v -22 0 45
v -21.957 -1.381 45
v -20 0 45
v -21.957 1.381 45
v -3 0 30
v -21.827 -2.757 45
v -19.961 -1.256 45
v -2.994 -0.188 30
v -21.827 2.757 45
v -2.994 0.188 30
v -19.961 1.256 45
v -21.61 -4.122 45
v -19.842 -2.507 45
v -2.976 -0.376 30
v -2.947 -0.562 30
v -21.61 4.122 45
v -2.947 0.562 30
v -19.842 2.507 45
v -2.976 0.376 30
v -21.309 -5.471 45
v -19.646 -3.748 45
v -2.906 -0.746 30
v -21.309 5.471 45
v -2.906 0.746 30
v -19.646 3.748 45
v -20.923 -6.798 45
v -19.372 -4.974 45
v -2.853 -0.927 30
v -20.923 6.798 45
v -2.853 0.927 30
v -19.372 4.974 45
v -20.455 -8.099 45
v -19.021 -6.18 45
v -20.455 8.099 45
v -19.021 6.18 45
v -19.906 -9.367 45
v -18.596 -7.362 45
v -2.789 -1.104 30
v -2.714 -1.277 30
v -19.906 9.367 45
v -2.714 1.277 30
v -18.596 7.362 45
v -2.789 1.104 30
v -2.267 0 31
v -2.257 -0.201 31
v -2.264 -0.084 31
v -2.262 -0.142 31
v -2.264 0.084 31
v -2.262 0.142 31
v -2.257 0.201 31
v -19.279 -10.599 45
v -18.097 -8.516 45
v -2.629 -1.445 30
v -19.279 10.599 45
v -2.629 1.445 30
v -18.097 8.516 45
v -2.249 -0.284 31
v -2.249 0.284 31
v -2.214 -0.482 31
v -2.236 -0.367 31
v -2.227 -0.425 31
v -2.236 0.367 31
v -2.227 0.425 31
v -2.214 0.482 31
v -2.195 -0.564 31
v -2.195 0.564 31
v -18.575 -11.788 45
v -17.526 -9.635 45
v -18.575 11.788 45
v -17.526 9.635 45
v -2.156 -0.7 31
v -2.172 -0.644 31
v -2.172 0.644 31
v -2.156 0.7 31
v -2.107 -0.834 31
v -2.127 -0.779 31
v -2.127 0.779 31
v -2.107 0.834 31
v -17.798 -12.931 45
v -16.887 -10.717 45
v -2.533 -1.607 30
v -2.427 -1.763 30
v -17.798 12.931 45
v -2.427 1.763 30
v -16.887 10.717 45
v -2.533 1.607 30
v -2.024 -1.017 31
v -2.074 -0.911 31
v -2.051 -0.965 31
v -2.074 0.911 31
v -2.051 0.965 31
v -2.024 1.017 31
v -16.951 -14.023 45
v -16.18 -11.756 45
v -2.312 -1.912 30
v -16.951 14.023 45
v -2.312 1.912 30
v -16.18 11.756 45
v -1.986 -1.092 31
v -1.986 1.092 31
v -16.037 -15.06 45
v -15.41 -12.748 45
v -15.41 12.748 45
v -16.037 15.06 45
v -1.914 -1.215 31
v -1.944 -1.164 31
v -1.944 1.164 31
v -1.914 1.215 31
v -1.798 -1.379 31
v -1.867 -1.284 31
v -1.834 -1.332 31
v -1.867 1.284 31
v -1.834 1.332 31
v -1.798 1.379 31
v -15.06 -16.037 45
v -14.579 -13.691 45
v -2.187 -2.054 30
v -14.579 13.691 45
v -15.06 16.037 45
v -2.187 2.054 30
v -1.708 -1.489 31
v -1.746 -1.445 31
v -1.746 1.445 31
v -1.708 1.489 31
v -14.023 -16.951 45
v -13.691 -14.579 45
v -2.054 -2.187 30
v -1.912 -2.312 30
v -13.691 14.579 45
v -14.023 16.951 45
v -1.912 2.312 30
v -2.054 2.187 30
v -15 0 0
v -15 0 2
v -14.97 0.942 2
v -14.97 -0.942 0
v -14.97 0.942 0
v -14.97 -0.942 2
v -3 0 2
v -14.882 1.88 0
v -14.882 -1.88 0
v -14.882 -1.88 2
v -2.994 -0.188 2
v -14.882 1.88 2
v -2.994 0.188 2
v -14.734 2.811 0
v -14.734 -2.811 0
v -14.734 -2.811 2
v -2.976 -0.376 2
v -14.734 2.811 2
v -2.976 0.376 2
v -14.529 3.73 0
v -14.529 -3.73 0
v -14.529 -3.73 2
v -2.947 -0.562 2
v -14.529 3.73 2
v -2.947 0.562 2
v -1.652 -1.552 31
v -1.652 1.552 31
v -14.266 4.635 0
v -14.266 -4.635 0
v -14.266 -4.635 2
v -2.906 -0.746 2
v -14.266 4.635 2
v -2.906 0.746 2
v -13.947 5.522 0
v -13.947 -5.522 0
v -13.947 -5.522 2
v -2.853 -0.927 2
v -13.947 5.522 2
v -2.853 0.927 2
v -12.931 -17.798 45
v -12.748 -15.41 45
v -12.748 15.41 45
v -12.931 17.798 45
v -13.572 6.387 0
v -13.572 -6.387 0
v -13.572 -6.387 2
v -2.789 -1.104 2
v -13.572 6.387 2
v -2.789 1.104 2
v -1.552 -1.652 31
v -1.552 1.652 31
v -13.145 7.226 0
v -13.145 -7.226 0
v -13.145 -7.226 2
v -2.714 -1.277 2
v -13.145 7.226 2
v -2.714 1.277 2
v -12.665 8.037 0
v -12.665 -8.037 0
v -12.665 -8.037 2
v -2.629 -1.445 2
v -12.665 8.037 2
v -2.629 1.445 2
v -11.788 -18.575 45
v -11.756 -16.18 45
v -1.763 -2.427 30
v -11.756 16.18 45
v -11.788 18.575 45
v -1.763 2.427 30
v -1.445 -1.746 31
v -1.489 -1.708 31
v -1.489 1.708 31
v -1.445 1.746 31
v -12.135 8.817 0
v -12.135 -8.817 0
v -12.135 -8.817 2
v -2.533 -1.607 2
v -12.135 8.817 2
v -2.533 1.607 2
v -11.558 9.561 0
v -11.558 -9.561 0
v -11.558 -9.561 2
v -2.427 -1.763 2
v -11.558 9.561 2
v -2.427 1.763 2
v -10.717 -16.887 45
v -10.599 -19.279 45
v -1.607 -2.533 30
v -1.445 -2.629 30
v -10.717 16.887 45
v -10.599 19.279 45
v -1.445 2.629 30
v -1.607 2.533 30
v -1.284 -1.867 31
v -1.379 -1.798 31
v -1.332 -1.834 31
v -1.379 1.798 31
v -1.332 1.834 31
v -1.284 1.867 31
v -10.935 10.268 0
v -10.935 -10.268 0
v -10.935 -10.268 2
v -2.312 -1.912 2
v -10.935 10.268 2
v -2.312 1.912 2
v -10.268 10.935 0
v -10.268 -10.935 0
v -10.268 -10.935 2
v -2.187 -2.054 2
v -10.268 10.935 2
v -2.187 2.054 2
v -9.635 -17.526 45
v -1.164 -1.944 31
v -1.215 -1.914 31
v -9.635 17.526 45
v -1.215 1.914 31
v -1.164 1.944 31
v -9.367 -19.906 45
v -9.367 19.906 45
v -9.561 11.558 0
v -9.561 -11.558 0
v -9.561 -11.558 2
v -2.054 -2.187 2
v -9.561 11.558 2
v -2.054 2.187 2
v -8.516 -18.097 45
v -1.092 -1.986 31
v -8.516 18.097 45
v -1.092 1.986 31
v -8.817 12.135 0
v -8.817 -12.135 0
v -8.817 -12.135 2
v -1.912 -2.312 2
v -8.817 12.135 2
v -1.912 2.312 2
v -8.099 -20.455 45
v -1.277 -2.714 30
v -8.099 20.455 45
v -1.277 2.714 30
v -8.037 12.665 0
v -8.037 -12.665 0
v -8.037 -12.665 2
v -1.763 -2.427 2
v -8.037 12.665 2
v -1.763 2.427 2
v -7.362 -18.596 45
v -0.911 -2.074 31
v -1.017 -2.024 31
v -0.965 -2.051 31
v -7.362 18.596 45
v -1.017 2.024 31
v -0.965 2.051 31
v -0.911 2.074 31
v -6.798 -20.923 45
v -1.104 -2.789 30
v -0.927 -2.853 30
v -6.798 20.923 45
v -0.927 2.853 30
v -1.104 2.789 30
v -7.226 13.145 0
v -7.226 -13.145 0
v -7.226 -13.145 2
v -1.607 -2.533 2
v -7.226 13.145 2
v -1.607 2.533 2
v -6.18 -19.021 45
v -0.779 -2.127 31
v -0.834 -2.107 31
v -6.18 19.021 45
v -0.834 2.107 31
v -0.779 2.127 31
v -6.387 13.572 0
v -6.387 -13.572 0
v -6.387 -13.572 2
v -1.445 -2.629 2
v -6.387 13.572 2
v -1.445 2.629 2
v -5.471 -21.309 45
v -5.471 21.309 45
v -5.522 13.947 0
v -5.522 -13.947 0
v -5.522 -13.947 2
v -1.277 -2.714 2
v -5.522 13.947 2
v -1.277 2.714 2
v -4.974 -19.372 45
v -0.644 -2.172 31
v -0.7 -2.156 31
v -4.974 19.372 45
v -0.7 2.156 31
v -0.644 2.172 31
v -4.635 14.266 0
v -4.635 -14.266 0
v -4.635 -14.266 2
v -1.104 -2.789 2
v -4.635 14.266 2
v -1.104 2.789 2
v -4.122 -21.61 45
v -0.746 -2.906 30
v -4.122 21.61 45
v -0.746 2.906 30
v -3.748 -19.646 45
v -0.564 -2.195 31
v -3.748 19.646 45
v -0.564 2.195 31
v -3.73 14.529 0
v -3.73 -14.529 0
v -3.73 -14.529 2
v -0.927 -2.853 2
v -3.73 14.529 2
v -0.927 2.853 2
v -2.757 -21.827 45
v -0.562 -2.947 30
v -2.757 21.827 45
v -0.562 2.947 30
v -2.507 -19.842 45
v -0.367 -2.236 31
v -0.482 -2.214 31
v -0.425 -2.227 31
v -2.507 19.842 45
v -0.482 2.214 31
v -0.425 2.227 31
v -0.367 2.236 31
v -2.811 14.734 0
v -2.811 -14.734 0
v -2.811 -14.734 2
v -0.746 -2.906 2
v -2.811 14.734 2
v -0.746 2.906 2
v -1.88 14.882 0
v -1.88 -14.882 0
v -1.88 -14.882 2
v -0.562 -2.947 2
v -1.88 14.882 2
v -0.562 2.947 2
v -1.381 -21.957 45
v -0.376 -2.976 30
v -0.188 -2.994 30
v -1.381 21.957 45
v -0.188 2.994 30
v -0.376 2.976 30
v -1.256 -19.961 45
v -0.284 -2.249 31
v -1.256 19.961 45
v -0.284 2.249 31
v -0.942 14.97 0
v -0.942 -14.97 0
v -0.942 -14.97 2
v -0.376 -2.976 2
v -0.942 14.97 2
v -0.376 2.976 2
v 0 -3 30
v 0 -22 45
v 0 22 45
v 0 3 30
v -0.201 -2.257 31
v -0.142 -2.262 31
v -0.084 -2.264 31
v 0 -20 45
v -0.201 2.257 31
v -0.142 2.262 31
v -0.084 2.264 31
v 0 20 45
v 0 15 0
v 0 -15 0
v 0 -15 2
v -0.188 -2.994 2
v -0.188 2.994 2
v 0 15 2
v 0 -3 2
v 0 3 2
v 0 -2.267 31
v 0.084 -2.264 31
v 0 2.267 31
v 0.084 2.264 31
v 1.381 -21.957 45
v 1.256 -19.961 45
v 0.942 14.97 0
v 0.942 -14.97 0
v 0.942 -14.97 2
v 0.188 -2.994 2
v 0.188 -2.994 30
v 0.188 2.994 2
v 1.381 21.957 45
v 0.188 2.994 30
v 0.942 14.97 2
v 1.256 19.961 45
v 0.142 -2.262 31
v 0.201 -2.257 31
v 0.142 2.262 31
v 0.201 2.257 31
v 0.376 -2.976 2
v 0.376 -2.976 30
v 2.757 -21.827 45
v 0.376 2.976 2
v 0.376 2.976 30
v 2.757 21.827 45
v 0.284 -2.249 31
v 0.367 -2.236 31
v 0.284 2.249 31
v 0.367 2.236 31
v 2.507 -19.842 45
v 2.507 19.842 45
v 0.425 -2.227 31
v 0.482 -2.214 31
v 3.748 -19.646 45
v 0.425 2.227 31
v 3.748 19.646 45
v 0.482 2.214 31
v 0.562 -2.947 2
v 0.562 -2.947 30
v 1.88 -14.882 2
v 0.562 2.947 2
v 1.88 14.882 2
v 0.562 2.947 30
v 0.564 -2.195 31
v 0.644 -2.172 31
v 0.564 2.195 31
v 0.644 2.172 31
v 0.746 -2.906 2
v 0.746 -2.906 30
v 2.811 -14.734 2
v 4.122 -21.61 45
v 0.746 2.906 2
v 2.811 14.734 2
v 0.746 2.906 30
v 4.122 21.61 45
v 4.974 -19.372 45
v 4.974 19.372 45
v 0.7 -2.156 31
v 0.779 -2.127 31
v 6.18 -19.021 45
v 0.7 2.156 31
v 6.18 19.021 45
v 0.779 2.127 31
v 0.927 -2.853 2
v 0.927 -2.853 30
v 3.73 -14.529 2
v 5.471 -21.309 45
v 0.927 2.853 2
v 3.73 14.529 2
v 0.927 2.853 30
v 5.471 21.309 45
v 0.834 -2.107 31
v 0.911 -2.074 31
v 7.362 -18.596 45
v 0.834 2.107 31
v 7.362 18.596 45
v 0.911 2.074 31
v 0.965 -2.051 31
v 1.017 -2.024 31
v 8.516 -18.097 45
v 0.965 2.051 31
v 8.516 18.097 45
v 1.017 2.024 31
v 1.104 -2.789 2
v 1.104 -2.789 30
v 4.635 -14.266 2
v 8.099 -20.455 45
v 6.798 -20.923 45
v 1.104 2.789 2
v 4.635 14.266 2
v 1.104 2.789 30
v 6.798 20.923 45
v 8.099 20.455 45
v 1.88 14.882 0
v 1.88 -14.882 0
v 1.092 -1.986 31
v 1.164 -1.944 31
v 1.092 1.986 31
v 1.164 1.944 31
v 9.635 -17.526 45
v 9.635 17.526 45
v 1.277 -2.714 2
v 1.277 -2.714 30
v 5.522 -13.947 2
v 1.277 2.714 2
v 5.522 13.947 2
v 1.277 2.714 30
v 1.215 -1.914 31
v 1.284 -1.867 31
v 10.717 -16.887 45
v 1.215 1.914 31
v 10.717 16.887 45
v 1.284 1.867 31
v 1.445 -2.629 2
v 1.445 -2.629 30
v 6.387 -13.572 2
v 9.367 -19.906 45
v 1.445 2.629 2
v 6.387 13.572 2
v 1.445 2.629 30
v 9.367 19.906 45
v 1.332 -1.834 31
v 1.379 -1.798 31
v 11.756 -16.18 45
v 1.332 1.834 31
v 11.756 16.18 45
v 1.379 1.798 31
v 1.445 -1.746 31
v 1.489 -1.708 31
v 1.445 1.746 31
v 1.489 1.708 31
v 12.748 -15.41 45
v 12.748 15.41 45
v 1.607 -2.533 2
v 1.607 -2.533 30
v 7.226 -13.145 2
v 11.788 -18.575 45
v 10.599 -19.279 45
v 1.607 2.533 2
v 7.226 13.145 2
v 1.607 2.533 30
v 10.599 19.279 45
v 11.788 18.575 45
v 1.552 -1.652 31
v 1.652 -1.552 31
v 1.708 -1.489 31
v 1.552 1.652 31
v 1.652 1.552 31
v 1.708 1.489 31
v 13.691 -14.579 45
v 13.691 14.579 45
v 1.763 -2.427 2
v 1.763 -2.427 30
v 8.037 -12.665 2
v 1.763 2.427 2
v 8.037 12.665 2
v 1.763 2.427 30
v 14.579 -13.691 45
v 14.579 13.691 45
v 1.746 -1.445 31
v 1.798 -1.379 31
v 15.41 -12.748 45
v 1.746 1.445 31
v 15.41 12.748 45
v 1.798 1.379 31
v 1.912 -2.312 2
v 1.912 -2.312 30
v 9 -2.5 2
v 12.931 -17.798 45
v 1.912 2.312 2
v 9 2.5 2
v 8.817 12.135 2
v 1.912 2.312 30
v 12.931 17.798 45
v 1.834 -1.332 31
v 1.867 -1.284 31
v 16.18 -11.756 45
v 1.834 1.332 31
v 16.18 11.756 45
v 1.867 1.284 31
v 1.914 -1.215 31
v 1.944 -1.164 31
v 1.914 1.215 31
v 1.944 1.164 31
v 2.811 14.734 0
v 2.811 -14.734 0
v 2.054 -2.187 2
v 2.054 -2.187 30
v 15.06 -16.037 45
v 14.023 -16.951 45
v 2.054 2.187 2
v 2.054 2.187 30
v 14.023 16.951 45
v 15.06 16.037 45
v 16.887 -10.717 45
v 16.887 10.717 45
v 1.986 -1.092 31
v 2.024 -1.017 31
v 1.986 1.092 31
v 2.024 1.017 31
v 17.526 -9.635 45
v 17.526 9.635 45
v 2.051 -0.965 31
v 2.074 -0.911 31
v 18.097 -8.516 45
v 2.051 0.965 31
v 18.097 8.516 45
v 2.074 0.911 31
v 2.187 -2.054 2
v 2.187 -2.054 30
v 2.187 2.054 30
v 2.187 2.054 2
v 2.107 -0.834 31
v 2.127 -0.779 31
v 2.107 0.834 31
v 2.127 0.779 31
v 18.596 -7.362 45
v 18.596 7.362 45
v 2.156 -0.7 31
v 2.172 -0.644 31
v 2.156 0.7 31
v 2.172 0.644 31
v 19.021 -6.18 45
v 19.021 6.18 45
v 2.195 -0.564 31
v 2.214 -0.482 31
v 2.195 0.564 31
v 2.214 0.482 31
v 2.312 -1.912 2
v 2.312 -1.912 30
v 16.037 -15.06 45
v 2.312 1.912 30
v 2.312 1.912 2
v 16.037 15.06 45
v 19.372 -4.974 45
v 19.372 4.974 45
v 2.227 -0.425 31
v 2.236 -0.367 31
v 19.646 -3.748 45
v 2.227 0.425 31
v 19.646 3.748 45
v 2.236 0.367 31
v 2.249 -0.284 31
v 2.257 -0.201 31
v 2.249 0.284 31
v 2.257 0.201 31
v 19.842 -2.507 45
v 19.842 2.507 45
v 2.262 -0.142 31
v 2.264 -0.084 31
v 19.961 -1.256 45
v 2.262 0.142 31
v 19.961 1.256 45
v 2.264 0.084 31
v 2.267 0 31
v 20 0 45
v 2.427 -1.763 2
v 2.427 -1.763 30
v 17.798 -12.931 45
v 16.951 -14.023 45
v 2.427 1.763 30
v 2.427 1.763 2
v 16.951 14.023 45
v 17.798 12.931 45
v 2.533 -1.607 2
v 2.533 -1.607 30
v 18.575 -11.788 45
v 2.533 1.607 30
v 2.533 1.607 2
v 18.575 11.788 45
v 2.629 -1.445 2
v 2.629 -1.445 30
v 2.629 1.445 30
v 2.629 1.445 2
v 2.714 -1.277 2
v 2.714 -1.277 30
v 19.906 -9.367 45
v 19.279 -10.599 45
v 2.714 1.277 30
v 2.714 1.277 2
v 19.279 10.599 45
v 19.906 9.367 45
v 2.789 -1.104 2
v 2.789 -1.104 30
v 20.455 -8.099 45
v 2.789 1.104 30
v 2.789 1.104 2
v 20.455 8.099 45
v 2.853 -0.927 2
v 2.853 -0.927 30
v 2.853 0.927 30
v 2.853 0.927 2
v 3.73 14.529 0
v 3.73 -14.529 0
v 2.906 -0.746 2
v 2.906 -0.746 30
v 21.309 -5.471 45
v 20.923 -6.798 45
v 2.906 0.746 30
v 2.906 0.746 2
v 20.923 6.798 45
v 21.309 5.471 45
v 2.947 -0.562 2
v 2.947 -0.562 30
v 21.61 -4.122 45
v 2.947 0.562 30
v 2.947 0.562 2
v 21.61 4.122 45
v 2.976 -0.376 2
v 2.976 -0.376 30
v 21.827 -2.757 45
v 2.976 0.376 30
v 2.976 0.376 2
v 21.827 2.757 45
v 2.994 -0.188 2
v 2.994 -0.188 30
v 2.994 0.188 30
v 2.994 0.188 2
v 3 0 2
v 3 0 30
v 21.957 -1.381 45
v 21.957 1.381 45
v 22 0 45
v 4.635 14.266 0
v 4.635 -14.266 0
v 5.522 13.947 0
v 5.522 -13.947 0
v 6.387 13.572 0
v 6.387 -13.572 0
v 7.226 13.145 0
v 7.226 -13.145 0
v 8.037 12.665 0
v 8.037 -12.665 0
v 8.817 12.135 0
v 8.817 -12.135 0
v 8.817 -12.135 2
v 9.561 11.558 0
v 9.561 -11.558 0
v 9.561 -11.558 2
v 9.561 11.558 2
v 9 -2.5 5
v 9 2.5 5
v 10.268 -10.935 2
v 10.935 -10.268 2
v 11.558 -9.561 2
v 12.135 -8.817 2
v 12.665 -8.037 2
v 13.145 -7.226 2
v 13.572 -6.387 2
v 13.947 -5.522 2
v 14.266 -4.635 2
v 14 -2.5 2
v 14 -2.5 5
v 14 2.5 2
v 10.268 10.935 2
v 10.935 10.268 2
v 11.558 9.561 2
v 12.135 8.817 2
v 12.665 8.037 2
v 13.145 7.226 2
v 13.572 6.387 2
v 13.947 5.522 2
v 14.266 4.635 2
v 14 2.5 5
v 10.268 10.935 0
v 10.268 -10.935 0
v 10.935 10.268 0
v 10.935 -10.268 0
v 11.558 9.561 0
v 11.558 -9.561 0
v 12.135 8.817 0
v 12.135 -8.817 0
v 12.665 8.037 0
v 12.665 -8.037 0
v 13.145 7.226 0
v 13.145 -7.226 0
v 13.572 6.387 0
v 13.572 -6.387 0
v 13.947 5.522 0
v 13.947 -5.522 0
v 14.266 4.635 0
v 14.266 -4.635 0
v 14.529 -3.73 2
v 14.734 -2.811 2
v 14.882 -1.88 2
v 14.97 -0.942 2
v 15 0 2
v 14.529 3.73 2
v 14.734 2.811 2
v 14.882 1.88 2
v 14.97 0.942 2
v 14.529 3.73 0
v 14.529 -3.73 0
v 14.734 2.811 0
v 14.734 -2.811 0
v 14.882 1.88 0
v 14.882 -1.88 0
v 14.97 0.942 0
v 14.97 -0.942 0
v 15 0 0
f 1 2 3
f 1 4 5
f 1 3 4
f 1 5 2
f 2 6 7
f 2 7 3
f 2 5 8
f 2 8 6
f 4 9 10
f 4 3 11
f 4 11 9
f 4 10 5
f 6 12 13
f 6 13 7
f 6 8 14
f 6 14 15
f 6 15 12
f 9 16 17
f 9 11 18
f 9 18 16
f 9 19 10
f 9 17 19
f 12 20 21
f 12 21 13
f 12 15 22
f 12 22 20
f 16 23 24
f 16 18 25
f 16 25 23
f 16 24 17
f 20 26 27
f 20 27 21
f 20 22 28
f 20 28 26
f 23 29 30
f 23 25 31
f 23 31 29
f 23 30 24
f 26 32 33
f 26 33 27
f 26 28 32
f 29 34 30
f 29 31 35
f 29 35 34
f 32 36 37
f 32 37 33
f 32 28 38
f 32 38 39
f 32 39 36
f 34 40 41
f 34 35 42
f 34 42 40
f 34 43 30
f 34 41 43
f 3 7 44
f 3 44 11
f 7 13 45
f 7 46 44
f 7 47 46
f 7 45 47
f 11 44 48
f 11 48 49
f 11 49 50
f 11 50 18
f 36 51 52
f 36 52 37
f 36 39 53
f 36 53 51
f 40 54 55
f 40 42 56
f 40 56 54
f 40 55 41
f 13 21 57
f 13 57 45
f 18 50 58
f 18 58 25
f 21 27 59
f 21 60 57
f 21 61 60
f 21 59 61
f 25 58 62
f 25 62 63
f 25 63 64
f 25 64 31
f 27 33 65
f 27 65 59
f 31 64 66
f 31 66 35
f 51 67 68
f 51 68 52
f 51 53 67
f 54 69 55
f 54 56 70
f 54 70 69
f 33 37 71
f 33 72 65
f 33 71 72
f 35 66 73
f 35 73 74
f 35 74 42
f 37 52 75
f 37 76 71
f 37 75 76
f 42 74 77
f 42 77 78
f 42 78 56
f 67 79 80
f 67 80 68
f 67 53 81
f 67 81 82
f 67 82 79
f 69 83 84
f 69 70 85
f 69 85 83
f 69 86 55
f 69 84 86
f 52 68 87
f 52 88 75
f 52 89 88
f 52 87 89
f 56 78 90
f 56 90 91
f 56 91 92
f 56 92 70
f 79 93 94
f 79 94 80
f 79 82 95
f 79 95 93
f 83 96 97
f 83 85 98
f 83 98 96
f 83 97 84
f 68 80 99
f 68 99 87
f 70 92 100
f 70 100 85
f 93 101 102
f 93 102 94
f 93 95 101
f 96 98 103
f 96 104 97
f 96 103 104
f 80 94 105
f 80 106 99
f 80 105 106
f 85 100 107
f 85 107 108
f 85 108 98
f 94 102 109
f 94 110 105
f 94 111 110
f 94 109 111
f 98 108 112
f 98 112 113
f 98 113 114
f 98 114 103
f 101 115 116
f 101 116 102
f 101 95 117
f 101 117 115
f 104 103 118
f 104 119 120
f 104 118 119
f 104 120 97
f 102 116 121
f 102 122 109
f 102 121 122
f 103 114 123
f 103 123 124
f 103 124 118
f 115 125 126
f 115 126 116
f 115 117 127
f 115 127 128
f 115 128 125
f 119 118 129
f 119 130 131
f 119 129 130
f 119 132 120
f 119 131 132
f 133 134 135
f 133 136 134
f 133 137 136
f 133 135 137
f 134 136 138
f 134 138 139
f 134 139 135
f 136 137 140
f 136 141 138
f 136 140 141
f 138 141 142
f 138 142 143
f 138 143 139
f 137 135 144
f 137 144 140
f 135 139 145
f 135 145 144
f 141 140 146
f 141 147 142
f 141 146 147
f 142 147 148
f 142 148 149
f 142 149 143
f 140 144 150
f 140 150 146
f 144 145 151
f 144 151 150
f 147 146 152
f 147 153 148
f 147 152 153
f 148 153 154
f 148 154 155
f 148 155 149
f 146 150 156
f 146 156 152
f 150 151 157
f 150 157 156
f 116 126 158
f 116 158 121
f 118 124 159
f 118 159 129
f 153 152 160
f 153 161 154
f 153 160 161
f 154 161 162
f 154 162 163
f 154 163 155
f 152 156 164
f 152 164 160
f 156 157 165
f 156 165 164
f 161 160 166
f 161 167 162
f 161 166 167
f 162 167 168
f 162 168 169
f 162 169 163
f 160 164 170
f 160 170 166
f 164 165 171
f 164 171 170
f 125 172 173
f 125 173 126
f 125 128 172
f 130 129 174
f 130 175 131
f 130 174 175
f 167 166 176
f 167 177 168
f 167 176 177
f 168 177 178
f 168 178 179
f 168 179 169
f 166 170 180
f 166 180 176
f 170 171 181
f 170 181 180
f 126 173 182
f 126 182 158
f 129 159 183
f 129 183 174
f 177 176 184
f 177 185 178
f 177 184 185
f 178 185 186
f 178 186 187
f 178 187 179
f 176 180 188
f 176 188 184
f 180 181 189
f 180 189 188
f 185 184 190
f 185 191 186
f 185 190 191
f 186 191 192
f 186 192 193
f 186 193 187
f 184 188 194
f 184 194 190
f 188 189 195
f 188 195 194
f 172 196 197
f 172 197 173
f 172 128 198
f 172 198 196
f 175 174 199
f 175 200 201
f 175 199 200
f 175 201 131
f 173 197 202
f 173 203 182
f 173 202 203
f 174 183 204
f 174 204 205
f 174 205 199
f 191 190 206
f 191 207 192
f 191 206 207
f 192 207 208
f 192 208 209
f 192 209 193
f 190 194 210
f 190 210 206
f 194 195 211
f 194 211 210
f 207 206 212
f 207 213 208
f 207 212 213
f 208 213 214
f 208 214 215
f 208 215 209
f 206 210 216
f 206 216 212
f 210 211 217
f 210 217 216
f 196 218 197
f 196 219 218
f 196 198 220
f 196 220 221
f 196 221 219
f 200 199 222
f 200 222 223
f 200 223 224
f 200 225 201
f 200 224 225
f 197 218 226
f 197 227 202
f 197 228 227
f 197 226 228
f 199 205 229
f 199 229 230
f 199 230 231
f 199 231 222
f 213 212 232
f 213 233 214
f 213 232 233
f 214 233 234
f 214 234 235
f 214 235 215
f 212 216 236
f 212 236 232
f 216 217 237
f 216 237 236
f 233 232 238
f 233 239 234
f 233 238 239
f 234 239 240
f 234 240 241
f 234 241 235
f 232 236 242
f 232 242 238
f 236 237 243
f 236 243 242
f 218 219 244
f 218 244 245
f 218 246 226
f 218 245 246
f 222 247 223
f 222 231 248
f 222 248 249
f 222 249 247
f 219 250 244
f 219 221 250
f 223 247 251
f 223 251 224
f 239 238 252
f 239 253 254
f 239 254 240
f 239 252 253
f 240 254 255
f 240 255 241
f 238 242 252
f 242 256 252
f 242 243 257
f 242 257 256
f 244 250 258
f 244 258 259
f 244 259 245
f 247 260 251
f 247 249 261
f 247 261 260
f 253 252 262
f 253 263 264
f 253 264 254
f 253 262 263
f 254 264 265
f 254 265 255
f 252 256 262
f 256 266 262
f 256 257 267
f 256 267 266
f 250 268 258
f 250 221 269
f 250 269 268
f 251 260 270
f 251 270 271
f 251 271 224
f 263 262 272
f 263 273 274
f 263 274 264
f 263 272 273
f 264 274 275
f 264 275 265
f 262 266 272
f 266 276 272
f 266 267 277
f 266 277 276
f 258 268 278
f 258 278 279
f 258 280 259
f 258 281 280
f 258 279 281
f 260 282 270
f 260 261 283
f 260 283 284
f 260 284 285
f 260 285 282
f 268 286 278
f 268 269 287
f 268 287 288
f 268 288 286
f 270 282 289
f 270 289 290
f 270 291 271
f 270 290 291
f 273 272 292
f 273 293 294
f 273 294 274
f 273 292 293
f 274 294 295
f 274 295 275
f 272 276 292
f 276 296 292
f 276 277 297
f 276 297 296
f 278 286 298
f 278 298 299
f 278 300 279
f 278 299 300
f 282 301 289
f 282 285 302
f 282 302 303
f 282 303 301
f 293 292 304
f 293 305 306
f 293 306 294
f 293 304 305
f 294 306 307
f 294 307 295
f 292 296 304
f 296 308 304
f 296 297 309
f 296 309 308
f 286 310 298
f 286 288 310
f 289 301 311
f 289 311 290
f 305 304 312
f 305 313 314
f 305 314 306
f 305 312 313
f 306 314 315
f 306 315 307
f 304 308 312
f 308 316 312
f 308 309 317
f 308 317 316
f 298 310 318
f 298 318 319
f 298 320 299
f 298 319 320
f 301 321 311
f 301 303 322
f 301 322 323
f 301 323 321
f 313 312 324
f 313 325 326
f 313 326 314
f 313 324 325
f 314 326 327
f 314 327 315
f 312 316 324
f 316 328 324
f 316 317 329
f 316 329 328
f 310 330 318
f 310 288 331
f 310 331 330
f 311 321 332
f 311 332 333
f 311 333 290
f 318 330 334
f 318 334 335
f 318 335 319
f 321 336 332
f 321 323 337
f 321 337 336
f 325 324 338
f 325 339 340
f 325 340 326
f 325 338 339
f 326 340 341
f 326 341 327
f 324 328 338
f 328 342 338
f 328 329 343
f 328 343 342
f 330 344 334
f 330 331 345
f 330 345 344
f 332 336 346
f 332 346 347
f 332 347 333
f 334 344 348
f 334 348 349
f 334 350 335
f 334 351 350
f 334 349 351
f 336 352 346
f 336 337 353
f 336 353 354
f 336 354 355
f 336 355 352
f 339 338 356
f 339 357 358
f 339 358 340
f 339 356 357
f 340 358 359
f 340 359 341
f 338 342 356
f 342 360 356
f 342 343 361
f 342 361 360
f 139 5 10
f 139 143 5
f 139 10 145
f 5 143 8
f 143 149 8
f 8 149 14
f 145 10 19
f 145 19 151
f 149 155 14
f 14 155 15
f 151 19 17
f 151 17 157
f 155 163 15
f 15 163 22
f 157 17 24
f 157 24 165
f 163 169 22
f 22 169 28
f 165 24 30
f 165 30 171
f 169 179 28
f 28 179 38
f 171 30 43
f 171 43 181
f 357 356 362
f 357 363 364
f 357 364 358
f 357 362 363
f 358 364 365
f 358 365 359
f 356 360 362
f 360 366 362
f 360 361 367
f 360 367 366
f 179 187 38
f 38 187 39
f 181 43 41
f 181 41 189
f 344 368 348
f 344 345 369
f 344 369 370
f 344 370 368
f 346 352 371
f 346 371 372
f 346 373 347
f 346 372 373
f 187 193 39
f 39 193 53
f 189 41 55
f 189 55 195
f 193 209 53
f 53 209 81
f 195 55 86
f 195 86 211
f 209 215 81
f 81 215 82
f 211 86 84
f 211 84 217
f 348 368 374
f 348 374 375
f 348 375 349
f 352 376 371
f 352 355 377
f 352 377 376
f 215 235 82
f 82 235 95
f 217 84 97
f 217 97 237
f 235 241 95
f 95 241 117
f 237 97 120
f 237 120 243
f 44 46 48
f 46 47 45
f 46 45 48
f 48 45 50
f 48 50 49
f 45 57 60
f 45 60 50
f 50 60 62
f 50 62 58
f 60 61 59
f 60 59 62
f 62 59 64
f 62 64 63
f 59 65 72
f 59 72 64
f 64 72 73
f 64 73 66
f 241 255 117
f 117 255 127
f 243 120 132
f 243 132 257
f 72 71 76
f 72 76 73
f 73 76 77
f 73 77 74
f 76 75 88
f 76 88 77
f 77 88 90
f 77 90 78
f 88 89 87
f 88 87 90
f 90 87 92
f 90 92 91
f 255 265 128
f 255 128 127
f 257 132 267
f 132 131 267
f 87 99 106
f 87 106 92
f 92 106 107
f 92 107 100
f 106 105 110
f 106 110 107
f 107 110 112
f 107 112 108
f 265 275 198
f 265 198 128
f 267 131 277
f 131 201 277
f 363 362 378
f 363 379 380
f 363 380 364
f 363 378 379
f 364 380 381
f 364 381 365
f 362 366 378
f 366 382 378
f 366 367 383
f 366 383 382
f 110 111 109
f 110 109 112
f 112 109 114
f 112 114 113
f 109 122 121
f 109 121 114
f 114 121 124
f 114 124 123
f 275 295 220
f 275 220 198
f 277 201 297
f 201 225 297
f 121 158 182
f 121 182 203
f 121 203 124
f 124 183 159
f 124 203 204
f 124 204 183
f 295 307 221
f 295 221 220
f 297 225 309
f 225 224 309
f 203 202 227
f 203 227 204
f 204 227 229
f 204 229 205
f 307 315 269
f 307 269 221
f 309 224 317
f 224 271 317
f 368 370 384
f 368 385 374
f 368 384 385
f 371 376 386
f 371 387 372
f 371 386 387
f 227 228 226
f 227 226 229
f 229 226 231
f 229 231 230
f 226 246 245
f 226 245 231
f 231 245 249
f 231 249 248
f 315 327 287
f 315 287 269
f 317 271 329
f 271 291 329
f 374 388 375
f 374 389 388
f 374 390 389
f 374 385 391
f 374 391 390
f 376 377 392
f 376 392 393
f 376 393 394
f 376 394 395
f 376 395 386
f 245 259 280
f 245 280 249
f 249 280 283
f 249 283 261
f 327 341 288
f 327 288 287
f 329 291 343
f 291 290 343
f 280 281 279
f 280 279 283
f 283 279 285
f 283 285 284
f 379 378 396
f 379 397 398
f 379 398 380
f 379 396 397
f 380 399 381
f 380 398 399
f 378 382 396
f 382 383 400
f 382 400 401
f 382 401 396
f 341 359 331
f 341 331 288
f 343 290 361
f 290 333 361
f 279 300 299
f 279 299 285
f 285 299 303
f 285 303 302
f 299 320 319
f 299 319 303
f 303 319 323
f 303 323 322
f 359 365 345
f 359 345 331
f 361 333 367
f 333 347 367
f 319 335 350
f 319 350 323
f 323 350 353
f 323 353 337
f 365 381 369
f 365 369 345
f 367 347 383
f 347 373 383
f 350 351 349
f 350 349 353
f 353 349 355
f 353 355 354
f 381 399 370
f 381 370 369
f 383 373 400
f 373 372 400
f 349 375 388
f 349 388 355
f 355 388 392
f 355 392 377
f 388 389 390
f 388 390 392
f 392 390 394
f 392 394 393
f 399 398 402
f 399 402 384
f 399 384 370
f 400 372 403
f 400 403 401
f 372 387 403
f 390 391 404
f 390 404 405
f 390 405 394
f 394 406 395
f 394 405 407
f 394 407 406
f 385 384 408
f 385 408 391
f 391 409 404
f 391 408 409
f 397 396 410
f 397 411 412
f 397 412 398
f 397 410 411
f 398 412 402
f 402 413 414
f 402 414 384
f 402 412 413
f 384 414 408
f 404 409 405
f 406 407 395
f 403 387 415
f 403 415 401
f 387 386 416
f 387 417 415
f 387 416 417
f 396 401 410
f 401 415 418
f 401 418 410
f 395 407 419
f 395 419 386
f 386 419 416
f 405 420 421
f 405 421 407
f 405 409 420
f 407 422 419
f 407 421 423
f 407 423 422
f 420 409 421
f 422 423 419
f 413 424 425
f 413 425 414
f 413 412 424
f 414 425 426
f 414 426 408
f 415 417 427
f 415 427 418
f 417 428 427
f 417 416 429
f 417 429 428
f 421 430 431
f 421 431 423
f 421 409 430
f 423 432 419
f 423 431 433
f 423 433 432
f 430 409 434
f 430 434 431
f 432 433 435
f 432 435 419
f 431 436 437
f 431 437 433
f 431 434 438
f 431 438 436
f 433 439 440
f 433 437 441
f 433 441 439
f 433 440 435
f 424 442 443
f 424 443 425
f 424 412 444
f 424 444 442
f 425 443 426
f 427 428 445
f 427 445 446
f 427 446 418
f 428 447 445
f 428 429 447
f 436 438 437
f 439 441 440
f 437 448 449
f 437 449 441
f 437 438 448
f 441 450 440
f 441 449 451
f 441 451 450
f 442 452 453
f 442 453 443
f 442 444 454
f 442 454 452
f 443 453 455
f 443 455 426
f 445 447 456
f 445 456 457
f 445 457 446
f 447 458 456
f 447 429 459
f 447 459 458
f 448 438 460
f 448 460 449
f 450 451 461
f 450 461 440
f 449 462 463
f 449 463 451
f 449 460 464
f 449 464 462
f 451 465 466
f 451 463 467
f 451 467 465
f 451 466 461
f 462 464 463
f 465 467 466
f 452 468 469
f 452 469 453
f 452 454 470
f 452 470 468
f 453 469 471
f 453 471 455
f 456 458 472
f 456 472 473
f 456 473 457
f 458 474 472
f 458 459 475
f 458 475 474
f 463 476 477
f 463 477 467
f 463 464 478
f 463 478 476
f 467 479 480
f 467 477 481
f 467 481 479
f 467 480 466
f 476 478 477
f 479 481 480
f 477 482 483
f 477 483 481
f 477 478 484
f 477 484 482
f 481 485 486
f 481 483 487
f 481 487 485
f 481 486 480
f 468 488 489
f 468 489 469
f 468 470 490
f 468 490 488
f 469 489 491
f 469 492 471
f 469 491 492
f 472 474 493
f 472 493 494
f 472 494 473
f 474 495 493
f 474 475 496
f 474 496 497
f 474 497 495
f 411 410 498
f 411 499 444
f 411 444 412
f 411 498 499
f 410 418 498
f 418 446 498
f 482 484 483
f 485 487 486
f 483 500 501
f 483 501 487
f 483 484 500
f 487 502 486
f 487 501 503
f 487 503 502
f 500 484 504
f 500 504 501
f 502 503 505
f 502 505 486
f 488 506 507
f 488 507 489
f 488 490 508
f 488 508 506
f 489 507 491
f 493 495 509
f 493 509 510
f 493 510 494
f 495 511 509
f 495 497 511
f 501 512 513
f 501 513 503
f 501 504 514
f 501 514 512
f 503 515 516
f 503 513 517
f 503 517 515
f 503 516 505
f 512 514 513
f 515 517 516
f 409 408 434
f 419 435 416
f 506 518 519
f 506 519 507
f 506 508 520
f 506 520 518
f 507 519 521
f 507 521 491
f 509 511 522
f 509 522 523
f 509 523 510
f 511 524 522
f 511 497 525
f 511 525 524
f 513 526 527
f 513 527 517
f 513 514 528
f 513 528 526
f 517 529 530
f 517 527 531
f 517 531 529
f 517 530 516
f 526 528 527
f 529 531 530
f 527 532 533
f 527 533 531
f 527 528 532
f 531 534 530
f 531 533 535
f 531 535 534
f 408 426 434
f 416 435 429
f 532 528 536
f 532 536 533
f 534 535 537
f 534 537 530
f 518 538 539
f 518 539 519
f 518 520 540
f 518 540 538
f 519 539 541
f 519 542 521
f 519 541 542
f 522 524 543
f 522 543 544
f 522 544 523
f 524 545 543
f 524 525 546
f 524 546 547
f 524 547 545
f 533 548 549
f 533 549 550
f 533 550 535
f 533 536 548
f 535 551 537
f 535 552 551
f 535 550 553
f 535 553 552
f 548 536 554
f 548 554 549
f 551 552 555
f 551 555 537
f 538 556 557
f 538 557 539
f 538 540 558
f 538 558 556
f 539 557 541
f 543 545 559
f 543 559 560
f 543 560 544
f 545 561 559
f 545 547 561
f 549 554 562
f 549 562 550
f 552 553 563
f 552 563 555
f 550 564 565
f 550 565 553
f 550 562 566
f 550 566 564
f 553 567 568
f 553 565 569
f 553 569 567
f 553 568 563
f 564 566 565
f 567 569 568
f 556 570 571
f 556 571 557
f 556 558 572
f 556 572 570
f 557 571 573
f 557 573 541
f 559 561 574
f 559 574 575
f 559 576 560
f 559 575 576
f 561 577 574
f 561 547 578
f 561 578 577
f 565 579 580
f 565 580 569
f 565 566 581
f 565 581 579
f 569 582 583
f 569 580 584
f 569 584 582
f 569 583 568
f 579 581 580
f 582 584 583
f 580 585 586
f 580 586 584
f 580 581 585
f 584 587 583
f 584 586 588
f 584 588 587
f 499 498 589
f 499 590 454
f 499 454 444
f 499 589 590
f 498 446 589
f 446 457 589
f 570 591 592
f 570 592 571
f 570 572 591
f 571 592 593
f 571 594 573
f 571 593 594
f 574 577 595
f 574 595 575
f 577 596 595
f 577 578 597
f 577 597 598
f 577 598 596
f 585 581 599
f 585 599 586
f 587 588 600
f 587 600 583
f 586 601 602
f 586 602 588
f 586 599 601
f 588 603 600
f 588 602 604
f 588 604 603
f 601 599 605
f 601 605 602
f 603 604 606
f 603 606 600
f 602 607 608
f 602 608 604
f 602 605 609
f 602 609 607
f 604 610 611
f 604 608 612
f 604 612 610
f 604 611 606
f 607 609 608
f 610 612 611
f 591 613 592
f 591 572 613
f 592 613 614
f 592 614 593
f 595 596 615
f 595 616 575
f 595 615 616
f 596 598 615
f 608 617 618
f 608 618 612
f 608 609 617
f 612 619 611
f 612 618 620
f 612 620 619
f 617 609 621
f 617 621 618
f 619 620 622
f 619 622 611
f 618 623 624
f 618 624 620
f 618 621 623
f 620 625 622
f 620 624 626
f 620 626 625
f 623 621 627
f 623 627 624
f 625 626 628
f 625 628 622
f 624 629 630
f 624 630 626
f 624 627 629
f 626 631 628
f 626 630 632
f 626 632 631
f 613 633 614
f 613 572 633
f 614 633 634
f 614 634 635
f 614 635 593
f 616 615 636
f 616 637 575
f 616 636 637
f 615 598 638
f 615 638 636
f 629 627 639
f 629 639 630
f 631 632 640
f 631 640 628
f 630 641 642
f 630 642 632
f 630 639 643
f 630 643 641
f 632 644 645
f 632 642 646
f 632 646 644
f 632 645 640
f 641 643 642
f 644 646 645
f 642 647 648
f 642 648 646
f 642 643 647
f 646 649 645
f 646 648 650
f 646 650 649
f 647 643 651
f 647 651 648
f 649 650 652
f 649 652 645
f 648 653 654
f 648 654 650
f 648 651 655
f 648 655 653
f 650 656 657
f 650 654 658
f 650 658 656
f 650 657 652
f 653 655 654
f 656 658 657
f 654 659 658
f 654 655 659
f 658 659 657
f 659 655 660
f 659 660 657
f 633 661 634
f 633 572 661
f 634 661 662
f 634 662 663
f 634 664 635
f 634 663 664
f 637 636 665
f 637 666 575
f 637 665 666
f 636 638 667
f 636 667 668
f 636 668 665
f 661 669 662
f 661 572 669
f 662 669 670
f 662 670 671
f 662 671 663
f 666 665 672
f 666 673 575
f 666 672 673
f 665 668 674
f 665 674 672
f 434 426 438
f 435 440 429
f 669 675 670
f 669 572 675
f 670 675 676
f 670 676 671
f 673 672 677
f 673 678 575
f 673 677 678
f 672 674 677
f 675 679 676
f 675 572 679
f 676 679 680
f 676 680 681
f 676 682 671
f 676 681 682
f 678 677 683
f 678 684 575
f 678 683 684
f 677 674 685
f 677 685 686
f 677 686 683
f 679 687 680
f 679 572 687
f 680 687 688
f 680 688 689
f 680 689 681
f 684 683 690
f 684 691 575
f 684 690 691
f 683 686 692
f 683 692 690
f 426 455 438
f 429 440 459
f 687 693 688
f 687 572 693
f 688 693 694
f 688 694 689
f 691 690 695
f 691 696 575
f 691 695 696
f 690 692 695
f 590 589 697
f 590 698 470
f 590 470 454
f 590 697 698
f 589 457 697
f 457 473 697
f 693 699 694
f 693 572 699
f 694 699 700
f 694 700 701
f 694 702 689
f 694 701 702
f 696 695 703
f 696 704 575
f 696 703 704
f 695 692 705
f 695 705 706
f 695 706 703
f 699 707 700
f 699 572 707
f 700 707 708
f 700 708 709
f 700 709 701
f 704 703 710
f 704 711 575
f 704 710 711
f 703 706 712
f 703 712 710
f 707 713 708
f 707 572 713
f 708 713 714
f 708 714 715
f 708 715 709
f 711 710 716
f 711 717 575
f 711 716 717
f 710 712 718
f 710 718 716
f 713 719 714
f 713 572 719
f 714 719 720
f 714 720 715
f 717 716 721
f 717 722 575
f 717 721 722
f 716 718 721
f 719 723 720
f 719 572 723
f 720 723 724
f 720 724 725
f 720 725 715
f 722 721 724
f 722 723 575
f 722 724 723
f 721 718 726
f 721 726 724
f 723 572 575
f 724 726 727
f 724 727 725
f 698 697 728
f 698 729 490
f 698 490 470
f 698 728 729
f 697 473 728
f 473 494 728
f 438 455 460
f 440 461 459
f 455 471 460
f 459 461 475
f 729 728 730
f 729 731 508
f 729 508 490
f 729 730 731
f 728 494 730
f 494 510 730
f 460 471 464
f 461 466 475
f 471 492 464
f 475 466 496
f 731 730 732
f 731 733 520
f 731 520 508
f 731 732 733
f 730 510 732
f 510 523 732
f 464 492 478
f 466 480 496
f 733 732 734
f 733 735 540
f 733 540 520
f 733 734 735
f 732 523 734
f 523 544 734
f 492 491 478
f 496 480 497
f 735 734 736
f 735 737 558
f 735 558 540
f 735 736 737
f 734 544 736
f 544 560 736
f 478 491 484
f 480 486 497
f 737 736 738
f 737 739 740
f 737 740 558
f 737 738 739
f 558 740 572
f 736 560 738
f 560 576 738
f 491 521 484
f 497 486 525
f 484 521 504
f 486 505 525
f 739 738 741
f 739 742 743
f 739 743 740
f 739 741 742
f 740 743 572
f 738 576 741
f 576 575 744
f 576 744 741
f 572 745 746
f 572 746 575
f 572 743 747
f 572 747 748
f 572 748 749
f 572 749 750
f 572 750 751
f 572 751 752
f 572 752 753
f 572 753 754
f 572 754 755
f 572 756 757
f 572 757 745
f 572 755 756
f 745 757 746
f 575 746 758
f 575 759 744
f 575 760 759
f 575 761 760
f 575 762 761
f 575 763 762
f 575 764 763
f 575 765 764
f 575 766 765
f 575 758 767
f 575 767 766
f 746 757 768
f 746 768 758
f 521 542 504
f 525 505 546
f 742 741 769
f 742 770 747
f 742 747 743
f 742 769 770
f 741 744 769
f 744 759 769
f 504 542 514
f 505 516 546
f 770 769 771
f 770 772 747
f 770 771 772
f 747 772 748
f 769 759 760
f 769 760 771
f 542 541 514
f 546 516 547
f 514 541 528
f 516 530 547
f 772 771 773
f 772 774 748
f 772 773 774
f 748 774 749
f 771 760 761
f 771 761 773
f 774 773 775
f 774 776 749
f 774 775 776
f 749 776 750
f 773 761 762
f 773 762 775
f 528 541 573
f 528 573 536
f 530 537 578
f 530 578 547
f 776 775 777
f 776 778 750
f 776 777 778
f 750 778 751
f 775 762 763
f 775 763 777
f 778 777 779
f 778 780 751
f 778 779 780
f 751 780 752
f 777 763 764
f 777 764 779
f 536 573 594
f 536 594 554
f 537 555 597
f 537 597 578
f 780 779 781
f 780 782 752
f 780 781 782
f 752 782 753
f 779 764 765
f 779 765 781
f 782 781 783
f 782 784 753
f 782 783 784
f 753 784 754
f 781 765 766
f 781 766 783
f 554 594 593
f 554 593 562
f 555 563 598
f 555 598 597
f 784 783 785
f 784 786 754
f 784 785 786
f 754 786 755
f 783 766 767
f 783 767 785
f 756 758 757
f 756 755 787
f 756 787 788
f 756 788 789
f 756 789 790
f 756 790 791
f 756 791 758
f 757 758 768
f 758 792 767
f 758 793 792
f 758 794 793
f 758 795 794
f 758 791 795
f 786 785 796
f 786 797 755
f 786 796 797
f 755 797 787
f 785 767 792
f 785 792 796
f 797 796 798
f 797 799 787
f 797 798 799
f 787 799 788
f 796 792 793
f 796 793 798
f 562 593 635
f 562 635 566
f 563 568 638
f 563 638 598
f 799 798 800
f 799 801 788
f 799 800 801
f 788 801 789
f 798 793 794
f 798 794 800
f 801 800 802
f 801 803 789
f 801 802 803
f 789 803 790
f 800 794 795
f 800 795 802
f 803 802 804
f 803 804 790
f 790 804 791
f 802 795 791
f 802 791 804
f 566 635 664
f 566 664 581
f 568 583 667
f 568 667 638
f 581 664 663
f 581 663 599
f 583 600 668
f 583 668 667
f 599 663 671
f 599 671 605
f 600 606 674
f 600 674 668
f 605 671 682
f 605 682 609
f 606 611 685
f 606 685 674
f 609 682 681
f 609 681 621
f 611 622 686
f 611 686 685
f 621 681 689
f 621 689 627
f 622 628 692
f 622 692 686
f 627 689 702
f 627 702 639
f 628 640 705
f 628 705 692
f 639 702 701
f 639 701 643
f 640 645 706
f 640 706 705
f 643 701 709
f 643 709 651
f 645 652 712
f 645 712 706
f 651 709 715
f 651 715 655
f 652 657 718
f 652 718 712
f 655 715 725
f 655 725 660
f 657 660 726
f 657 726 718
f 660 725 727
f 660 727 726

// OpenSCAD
$fn=100;

cylinder(2, 15, 15, false);
cylinder(31, 3, 3, false);
translate([0, 0, 30]) difference() {
    cylinder(15, 3, 22, false);
    cylinder(15, 1, 20, false);
}
translate([9, -2.5, 0]) cube([5, 5, 5]);
